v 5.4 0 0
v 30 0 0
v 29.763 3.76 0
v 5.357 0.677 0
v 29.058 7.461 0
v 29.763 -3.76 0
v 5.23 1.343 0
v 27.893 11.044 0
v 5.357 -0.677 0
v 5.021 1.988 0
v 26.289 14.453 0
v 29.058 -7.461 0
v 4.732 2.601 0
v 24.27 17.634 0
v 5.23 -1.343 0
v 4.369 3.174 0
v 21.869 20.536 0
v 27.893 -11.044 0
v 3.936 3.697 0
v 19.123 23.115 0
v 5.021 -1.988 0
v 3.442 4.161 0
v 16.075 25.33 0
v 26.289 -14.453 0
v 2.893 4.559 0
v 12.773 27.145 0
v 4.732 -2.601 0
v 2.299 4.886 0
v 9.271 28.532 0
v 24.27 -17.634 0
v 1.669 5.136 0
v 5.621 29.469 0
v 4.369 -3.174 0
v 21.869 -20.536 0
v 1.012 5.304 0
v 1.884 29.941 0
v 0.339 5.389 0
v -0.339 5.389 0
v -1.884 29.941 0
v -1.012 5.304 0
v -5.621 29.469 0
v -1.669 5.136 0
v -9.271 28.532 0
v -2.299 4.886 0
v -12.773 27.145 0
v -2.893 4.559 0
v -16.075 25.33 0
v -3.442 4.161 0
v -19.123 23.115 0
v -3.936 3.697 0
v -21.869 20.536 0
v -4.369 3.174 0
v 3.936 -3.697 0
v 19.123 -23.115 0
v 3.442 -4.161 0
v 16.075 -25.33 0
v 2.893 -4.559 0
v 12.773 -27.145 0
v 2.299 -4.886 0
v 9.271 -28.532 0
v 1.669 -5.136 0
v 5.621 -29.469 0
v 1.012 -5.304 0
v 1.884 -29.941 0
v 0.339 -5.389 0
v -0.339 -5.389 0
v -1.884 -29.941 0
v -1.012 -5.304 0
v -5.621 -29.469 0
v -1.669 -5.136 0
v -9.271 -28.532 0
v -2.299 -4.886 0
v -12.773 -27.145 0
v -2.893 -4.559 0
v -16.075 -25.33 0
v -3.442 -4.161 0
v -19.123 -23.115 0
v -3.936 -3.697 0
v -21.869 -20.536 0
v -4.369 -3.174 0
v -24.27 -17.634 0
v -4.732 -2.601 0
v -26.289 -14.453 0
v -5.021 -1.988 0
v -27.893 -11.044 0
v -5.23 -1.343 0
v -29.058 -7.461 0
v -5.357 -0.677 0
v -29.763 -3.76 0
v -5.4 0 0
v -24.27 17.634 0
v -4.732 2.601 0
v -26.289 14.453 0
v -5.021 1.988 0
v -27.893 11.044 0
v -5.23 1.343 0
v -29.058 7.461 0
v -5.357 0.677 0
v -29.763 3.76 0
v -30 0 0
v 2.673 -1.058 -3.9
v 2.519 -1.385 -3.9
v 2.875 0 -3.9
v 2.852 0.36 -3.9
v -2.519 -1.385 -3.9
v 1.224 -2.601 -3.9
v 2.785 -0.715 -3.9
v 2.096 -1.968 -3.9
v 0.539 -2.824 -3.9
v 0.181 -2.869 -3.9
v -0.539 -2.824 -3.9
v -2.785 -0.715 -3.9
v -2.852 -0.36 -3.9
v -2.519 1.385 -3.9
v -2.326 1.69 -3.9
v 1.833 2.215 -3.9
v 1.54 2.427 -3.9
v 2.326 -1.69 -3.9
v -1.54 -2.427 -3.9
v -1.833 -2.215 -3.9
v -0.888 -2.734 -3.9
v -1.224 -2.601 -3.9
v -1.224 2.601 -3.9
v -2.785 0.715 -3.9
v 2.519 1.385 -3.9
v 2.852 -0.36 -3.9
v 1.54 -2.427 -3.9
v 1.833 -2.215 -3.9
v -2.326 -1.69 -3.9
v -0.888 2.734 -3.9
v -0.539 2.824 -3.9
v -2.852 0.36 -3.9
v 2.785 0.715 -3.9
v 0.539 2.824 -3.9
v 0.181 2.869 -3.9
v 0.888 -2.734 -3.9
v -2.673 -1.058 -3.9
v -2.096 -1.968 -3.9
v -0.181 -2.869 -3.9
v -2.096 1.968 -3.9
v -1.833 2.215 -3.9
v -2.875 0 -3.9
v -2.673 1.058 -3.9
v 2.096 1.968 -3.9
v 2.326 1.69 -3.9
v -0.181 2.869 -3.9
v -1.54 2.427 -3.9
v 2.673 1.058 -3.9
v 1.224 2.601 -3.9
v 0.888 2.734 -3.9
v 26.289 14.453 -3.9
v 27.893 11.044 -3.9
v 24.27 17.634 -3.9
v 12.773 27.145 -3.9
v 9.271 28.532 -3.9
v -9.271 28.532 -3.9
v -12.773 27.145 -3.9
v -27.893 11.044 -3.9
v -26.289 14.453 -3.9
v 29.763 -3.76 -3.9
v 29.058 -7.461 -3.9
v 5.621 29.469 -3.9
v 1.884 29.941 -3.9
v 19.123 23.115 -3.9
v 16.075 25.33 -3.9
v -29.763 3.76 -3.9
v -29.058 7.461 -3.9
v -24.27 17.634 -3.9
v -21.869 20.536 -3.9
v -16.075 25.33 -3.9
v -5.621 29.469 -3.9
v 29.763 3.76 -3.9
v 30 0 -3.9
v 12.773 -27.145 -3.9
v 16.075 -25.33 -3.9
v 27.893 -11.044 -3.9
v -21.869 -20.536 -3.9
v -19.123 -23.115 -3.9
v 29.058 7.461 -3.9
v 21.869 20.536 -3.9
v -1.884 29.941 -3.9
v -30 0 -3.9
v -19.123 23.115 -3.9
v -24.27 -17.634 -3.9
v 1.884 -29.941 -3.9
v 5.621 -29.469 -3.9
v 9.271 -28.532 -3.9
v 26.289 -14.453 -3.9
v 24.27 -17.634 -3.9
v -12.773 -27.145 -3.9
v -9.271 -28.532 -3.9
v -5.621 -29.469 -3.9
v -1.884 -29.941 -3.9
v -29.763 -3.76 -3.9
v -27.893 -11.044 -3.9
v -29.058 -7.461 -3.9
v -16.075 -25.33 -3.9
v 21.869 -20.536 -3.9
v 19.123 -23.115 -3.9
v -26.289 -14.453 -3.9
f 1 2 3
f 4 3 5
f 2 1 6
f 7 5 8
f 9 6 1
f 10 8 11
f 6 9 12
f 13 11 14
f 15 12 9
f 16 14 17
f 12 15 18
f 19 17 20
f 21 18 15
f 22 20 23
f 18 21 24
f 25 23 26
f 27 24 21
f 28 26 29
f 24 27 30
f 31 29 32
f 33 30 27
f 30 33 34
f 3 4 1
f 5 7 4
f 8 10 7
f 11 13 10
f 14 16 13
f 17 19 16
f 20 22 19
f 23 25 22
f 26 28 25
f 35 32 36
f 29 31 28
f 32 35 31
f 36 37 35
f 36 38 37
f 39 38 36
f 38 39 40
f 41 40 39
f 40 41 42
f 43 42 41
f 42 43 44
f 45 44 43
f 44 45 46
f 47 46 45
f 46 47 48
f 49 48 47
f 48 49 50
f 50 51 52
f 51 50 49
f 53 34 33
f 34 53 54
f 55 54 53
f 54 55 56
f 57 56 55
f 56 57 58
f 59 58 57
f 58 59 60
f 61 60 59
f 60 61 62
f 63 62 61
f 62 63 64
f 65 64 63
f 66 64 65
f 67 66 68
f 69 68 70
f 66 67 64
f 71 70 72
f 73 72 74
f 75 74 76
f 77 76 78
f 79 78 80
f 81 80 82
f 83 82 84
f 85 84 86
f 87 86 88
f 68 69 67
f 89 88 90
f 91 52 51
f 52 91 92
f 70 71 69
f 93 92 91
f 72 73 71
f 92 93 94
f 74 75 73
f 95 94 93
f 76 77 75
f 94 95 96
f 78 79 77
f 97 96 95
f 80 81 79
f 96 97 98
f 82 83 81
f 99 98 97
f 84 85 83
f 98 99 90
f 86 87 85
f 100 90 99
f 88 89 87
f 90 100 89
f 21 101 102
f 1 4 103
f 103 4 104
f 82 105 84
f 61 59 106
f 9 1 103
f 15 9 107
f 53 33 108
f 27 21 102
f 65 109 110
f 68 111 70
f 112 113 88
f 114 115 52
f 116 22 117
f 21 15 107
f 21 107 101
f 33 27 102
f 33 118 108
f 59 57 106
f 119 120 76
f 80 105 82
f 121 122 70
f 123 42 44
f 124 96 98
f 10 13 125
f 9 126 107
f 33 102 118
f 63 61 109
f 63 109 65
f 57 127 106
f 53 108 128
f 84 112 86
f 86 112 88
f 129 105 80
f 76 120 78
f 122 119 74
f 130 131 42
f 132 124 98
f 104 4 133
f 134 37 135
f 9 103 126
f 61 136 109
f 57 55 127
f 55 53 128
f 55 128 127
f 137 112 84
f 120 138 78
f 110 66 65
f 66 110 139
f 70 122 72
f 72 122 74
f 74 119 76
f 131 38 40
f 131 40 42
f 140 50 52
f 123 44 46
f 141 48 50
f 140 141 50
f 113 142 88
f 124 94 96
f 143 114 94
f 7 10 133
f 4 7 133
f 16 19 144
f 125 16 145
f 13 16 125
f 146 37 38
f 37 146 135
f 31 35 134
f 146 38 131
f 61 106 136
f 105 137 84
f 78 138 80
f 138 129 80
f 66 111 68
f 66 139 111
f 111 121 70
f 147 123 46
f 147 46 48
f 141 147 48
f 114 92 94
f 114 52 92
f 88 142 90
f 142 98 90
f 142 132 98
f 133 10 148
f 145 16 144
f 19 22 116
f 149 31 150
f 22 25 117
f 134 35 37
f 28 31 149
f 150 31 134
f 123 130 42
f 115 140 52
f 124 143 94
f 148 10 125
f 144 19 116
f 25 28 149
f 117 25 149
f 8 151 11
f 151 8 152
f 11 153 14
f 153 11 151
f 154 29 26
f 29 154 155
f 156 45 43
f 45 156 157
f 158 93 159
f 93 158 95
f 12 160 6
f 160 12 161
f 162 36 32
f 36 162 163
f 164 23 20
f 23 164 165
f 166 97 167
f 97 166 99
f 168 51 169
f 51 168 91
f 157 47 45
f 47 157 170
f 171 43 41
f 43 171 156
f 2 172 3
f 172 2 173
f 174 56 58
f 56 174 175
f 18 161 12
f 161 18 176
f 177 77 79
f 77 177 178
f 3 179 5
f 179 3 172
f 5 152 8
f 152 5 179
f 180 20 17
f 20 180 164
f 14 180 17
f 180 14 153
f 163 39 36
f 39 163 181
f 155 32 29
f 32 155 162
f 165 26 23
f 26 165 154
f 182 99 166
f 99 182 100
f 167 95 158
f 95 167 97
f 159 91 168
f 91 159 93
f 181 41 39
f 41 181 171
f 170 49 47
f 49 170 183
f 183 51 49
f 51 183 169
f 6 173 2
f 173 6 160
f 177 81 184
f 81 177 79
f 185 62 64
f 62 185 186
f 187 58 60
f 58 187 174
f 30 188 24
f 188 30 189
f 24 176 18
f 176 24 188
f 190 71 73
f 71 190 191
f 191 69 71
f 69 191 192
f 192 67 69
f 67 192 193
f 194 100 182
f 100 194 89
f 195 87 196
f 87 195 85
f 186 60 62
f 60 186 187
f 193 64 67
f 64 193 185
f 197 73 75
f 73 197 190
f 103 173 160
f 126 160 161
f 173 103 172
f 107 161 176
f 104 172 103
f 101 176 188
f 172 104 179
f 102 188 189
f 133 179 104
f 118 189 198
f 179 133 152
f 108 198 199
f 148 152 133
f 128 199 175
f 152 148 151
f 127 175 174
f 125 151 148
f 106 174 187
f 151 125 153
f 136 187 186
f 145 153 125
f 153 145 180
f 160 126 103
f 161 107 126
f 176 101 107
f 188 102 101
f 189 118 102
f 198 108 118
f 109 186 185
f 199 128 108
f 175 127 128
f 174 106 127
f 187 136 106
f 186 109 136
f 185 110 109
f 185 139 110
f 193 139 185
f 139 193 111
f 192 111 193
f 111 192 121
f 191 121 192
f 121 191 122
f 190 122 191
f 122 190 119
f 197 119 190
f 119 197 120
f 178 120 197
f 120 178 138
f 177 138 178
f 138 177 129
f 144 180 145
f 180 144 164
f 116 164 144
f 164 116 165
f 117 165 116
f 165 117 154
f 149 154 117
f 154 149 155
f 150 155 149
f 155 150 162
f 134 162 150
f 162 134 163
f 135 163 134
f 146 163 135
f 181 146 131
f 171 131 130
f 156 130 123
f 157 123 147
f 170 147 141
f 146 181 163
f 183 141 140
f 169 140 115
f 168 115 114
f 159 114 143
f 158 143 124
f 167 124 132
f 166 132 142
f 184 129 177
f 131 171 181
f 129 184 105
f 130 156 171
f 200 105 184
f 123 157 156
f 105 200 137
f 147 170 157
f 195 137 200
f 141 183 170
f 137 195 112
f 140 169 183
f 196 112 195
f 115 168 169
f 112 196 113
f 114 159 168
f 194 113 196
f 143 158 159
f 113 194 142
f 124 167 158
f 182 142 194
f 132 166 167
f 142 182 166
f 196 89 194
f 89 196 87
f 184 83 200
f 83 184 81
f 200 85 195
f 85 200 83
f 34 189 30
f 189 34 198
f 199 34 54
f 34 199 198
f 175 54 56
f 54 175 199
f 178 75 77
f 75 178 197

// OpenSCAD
$fn = 50;

difference() {
	union() {
		translate(v = [0, 0, -3.9]) {
			cylinder(h = 3.9, r = 30.0);
		}
	}
	union() {
		translate(v = [0, 0, 0]) {
			rotate(a = [0, 0, 0]) {
				difference() {
					union() {
						translate(v = [0, 0, -6.9]) {
							cylinder(h = 6.9, r = 2.6);
						}
						translate(v = [0, 0, -3.9]) {
							cylinder(h = 3.9, r1 = 2.875, r2 = 5.4);
						}
						translate(v = [0, 0, -6.9]) {
							cylinder(h = 6.9, r = 2.875);
						}
						translate(v = [0, 0, -6.9]) {
							cylinder(h = 6.9, r = 2.6);
						}
					}
					union();
				}
			}
		}
	}
}
